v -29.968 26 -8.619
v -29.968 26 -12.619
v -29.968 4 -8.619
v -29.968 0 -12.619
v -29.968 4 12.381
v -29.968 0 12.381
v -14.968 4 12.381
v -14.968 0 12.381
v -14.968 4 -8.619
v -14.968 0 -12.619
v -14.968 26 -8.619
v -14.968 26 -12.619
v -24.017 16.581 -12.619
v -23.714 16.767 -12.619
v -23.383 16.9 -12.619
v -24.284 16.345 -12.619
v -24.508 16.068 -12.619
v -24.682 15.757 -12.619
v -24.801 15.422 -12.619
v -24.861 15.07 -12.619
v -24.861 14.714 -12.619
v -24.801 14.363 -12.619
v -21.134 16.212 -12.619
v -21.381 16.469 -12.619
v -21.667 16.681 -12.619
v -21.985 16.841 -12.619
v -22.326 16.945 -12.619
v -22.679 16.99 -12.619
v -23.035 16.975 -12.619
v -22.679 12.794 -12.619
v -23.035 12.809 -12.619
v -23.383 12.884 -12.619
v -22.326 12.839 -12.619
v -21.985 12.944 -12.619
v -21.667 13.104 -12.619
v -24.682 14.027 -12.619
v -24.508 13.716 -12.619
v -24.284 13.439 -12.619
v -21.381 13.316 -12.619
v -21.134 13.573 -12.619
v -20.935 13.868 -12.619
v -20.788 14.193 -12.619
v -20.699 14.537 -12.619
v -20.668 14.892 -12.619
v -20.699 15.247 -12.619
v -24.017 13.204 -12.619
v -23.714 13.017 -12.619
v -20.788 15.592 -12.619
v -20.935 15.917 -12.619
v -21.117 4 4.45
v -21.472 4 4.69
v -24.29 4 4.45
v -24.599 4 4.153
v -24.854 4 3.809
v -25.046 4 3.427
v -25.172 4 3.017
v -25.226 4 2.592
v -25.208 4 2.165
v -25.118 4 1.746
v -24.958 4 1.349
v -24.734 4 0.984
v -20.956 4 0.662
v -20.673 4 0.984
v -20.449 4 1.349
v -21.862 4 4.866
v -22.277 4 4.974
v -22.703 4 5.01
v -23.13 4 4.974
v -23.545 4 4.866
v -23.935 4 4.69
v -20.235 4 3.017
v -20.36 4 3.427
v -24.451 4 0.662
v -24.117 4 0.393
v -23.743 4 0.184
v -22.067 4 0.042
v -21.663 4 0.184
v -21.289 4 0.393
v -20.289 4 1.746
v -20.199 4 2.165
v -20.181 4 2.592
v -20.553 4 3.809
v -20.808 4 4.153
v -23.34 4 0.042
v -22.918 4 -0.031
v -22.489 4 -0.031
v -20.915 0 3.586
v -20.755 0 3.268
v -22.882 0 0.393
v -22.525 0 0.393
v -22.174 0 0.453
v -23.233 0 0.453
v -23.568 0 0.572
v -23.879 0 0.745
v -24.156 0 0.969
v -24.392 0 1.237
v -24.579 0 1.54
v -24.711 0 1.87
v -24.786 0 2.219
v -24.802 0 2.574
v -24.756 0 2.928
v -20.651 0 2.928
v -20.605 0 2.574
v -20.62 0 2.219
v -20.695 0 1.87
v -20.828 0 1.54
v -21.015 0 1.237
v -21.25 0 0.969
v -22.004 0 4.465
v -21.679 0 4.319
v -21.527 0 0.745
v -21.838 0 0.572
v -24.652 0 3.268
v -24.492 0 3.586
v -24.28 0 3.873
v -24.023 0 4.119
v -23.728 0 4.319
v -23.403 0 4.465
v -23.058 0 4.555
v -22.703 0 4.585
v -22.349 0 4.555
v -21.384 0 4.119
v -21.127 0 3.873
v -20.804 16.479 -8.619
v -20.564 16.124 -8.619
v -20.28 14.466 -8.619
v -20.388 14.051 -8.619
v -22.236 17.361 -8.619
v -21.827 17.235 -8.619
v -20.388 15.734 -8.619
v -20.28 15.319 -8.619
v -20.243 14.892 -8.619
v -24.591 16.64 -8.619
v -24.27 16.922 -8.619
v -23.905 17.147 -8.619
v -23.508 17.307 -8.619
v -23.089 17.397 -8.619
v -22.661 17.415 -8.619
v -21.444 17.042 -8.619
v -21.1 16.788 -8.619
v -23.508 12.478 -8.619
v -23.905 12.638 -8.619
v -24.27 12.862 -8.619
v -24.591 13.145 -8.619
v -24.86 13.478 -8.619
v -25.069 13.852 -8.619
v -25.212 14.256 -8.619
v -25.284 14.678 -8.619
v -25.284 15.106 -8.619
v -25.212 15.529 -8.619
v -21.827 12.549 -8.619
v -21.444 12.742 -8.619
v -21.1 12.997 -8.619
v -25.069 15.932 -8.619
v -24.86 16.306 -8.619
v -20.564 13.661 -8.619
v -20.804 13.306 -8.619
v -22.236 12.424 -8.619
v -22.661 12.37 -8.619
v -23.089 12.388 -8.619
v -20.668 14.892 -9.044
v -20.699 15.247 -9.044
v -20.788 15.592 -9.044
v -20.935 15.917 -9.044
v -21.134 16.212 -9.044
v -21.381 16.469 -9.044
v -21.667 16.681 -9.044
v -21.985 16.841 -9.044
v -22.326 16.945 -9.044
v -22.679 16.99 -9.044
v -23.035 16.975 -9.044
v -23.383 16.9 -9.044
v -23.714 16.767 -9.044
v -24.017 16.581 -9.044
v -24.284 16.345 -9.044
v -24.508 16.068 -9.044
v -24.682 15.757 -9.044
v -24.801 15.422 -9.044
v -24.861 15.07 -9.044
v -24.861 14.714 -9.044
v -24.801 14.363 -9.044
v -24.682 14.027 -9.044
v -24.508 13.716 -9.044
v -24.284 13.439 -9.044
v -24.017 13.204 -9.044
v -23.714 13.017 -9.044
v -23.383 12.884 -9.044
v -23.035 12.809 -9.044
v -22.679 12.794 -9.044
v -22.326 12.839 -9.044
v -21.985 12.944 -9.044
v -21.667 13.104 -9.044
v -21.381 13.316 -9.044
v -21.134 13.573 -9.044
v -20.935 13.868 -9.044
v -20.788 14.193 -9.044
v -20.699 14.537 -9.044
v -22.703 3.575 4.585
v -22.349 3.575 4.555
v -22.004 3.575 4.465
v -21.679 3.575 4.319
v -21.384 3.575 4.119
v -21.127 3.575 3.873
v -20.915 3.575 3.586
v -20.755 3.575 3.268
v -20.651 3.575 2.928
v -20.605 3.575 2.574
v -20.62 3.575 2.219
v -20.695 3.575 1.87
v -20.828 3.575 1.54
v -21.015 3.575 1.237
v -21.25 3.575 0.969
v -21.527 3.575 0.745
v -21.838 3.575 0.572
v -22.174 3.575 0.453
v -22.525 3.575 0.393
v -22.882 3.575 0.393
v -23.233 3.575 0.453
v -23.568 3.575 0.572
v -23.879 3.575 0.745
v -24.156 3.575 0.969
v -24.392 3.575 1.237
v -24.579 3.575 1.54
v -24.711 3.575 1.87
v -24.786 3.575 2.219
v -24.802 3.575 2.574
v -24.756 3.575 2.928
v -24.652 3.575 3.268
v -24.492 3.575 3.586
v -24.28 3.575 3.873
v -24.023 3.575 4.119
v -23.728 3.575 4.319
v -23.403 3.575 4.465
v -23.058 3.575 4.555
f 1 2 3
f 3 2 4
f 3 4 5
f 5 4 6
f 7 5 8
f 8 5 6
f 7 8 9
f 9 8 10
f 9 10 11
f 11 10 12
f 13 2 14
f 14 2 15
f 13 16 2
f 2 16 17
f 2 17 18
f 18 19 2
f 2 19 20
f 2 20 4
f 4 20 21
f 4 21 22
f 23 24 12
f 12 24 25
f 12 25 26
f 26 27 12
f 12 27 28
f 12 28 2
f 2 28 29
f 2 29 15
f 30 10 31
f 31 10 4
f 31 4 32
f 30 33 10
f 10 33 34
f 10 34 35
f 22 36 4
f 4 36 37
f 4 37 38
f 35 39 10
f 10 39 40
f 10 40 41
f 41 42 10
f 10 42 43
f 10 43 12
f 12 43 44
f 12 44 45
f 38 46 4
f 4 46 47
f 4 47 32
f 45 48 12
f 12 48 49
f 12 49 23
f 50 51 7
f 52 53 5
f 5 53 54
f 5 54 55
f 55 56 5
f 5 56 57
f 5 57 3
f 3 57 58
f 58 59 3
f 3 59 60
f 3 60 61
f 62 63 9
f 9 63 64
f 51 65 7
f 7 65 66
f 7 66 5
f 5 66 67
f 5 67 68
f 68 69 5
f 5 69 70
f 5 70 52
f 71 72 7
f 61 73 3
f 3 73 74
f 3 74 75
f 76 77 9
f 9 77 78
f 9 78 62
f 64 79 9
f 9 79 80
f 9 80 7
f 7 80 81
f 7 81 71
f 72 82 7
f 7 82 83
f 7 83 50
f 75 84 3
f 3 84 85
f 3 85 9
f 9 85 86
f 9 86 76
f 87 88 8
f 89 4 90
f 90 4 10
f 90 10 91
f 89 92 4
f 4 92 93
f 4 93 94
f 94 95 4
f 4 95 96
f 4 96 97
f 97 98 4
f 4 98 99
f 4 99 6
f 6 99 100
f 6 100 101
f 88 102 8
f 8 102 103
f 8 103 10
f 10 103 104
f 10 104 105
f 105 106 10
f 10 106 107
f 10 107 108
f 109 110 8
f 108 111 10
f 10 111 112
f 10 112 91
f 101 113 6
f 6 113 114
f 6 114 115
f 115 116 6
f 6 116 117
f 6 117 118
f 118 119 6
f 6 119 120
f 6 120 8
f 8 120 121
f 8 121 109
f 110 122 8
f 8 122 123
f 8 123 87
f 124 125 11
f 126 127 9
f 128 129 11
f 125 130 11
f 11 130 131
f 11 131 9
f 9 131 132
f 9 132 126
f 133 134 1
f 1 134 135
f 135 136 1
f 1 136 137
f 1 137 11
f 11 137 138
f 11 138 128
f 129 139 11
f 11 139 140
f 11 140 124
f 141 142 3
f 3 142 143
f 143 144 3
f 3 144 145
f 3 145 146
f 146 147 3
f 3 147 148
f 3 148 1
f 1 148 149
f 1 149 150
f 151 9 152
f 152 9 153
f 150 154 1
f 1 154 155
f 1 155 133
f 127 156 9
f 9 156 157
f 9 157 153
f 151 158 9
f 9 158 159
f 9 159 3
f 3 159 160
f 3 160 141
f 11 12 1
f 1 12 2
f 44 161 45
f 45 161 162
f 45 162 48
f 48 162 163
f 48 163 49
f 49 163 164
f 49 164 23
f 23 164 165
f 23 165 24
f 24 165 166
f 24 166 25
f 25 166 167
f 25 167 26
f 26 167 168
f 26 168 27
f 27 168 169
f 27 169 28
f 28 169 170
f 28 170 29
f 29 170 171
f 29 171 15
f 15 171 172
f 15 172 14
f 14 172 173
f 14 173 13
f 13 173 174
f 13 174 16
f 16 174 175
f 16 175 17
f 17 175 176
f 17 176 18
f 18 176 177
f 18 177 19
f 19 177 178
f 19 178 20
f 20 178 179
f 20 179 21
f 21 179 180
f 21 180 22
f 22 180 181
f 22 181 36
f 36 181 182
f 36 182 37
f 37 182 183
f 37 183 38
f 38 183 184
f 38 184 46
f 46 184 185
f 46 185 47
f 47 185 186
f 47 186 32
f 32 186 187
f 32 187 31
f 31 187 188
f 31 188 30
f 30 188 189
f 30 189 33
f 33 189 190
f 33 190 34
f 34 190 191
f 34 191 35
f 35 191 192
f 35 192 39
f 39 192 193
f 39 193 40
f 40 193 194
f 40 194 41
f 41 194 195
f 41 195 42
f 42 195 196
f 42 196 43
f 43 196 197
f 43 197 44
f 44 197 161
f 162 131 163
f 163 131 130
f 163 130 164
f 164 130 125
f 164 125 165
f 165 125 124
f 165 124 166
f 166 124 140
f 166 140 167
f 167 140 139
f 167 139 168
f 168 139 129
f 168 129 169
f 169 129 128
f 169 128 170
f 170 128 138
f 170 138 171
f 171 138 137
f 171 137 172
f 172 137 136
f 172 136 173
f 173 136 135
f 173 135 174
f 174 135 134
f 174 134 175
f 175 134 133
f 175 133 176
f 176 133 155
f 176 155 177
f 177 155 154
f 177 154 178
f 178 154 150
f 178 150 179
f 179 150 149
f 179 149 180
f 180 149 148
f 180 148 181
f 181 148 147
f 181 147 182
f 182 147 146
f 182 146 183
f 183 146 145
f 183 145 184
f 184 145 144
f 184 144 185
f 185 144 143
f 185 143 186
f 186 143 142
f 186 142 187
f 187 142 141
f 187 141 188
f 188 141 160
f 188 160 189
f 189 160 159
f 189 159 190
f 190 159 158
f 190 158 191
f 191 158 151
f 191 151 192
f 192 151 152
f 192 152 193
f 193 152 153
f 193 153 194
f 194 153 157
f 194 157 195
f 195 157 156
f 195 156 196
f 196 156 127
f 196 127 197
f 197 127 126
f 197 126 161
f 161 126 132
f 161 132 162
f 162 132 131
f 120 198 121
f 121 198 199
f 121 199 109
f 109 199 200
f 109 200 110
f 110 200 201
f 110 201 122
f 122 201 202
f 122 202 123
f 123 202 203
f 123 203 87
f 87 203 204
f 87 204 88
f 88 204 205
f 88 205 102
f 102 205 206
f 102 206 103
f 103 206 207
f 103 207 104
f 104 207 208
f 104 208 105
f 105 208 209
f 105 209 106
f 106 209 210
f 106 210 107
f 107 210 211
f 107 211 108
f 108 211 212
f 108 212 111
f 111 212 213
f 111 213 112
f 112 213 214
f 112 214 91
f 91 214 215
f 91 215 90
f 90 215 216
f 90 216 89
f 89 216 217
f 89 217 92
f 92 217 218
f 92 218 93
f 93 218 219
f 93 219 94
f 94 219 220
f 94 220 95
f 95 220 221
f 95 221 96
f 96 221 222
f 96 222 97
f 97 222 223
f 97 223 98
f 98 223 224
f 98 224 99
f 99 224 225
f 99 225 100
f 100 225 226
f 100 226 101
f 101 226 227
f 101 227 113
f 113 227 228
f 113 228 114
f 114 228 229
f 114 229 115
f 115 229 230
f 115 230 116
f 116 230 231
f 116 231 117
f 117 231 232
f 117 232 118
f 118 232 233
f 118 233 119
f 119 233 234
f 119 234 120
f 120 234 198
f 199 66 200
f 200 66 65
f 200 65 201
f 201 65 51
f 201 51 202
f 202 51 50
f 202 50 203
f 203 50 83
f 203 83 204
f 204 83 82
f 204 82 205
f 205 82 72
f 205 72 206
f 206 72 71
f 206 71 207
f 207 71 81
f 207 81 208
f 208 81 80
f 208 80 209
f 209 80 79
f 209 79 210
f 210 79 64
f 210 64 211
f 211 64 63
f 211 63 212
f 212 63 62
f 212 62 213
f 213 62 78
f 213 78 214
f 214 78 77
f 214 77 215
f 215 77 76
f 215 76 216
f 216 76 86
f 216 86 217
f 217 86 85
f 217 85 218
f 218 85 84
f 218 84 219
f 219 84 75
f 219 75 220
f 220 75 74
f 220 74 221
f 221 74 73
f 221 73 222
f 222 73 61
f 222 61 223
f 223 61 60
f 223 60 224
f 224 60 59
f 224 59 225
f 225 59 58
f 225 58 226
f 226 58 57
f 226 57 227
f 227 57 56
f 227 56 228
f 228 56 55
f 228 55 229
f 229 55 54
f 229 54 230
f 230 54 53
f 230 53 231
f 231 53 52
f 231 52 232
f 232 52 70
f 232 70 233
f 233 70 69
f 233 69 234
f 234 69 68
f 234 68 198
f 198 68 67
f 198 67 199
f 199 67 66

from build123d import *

# Parameters (mm, degrees)
SKETCH1_W                                 = 15
SKETCH1_H                                 = 25
BOSS_EXTRUDE1_DEPTH                       = 4
SKETCH2_W                                 = 15
SKETCH2_H                                 = 4
BOSS_EXTRUDE2_DEPTH                       = 22
M5X0_8_TAPPED_HOLE2_D                     = 4.2
M5X0_8_TAPPED_HOLE2_CSINK_D               = 5.05
M5X0_8_TAPPED_HOLE2_CSINK_ANGLE           = 90
M5X0_8_TAPPED_HOLE2_ON_FACE_2_D           = 4.2
M5X0_8_TAPPED_HOLE2_ON_FACE_2_CSINK_D     = 5.05
M5X0_8_TAPPED_HOLE2_ON_FACE_2_CSINK_ANGLE = 90


with BuildPart() as part:
    # Sketch1 → Boss-Extrude1 (new body)
    with BuildSketch(Plane(origin=(0, 0, 0), x_dir=(1, 0, 0), z_dir=(0, 1, 0))):
        with Locations((-22.468152866, 0.119426752)):
            Rectangle(SKETCH1_W, SKETCH1_H)
    extrude(amount=BOSS_EXTRUDE1_DEPTH)

    # Sketch2 → Boss-Extrude2 (add)
    with BuildSketch(Plane(origin=(0, 4, 0), x_dir=(1, 0, 0), z_dir=(0, 1, 0))):
        with Locations((-22.468152866, 10.619426752)):
            Rectangle(SKETCH2_W, SKETCH2_H)
    extrude(amount=BOSS_EXTRUDE2_DEPTH)

    # M5x0.8 Tapped Hole2 (through all)
    with Locations(Plane(origin=(-22.703417576, 4, 2.485289676), x_dir=(0, 0, 1), z_dir=(0, 1, 0))):
        with Locations((0, 0)):
            CounterSinkHole(M5X0_8_TAPPED_HOLE2_D / 2, M5X0_8_TAPPED_HOLE2_CSINK_D / 2, counter_sink_angle=M5X0_8_TAPPED_HOLE2_CSINK_ANGLE)

    # M5x0.8 Tapped Hole2 on face 2 (through all)
    with Locations(Plane(origin=(-22.76831123, 14.89235582, -8.619426752), x_dir=(1, 0, 0), z_dir=(0, 0, 1))):
        with Locations((0, 0)):
            CounterSinkHole(M5X0_8_TAPPED_HOLE2_ON_FACE_2_D / 2, M5X0_8_TAPPED_HOLE2_ON_FACE_2_CSINK_D / 2, counter_sink_angle=M5X0_8_TAPPED_HOLE2_ON_FACE_2_CSINK_ANGLE)


solid = part.part
